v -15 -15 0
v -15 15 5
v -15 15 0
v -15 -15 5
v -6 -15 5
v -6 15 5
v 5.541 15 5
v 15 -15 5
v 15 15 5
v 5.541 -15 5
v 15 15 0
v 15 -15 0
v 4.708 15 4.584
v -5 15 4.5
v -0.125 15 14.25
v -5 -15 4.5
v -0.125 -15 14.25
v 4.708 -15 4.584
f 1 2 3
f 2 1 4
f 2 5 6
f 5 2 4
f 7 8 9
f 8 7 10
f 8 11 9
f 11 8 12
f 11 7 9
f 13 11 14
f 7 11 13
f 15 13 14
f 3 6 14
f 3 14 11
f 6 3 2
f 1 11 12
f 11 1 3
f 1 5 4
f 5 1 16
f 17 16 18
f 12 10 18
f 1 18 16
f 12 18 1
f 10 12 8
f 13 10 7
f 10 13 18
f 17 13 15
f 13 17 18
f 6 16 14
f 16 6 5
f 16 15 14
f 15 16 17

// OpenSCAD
module holder(x = 0, y = 0) {
    translate([x,y,0]) {
        difference() {
            union() {
                cube([30,30,5]);
                translate([10,0,5]) cube([10,30,10]);
            }
            translate([13,0,18]) rotate([0,atan(2),0]) cube([15,30,15]);
            translate([10,0,4.5]) rotate([0,atan(-2),0]) cube([15,30,15]);
        }
    }
}

holder(-15,-15);
